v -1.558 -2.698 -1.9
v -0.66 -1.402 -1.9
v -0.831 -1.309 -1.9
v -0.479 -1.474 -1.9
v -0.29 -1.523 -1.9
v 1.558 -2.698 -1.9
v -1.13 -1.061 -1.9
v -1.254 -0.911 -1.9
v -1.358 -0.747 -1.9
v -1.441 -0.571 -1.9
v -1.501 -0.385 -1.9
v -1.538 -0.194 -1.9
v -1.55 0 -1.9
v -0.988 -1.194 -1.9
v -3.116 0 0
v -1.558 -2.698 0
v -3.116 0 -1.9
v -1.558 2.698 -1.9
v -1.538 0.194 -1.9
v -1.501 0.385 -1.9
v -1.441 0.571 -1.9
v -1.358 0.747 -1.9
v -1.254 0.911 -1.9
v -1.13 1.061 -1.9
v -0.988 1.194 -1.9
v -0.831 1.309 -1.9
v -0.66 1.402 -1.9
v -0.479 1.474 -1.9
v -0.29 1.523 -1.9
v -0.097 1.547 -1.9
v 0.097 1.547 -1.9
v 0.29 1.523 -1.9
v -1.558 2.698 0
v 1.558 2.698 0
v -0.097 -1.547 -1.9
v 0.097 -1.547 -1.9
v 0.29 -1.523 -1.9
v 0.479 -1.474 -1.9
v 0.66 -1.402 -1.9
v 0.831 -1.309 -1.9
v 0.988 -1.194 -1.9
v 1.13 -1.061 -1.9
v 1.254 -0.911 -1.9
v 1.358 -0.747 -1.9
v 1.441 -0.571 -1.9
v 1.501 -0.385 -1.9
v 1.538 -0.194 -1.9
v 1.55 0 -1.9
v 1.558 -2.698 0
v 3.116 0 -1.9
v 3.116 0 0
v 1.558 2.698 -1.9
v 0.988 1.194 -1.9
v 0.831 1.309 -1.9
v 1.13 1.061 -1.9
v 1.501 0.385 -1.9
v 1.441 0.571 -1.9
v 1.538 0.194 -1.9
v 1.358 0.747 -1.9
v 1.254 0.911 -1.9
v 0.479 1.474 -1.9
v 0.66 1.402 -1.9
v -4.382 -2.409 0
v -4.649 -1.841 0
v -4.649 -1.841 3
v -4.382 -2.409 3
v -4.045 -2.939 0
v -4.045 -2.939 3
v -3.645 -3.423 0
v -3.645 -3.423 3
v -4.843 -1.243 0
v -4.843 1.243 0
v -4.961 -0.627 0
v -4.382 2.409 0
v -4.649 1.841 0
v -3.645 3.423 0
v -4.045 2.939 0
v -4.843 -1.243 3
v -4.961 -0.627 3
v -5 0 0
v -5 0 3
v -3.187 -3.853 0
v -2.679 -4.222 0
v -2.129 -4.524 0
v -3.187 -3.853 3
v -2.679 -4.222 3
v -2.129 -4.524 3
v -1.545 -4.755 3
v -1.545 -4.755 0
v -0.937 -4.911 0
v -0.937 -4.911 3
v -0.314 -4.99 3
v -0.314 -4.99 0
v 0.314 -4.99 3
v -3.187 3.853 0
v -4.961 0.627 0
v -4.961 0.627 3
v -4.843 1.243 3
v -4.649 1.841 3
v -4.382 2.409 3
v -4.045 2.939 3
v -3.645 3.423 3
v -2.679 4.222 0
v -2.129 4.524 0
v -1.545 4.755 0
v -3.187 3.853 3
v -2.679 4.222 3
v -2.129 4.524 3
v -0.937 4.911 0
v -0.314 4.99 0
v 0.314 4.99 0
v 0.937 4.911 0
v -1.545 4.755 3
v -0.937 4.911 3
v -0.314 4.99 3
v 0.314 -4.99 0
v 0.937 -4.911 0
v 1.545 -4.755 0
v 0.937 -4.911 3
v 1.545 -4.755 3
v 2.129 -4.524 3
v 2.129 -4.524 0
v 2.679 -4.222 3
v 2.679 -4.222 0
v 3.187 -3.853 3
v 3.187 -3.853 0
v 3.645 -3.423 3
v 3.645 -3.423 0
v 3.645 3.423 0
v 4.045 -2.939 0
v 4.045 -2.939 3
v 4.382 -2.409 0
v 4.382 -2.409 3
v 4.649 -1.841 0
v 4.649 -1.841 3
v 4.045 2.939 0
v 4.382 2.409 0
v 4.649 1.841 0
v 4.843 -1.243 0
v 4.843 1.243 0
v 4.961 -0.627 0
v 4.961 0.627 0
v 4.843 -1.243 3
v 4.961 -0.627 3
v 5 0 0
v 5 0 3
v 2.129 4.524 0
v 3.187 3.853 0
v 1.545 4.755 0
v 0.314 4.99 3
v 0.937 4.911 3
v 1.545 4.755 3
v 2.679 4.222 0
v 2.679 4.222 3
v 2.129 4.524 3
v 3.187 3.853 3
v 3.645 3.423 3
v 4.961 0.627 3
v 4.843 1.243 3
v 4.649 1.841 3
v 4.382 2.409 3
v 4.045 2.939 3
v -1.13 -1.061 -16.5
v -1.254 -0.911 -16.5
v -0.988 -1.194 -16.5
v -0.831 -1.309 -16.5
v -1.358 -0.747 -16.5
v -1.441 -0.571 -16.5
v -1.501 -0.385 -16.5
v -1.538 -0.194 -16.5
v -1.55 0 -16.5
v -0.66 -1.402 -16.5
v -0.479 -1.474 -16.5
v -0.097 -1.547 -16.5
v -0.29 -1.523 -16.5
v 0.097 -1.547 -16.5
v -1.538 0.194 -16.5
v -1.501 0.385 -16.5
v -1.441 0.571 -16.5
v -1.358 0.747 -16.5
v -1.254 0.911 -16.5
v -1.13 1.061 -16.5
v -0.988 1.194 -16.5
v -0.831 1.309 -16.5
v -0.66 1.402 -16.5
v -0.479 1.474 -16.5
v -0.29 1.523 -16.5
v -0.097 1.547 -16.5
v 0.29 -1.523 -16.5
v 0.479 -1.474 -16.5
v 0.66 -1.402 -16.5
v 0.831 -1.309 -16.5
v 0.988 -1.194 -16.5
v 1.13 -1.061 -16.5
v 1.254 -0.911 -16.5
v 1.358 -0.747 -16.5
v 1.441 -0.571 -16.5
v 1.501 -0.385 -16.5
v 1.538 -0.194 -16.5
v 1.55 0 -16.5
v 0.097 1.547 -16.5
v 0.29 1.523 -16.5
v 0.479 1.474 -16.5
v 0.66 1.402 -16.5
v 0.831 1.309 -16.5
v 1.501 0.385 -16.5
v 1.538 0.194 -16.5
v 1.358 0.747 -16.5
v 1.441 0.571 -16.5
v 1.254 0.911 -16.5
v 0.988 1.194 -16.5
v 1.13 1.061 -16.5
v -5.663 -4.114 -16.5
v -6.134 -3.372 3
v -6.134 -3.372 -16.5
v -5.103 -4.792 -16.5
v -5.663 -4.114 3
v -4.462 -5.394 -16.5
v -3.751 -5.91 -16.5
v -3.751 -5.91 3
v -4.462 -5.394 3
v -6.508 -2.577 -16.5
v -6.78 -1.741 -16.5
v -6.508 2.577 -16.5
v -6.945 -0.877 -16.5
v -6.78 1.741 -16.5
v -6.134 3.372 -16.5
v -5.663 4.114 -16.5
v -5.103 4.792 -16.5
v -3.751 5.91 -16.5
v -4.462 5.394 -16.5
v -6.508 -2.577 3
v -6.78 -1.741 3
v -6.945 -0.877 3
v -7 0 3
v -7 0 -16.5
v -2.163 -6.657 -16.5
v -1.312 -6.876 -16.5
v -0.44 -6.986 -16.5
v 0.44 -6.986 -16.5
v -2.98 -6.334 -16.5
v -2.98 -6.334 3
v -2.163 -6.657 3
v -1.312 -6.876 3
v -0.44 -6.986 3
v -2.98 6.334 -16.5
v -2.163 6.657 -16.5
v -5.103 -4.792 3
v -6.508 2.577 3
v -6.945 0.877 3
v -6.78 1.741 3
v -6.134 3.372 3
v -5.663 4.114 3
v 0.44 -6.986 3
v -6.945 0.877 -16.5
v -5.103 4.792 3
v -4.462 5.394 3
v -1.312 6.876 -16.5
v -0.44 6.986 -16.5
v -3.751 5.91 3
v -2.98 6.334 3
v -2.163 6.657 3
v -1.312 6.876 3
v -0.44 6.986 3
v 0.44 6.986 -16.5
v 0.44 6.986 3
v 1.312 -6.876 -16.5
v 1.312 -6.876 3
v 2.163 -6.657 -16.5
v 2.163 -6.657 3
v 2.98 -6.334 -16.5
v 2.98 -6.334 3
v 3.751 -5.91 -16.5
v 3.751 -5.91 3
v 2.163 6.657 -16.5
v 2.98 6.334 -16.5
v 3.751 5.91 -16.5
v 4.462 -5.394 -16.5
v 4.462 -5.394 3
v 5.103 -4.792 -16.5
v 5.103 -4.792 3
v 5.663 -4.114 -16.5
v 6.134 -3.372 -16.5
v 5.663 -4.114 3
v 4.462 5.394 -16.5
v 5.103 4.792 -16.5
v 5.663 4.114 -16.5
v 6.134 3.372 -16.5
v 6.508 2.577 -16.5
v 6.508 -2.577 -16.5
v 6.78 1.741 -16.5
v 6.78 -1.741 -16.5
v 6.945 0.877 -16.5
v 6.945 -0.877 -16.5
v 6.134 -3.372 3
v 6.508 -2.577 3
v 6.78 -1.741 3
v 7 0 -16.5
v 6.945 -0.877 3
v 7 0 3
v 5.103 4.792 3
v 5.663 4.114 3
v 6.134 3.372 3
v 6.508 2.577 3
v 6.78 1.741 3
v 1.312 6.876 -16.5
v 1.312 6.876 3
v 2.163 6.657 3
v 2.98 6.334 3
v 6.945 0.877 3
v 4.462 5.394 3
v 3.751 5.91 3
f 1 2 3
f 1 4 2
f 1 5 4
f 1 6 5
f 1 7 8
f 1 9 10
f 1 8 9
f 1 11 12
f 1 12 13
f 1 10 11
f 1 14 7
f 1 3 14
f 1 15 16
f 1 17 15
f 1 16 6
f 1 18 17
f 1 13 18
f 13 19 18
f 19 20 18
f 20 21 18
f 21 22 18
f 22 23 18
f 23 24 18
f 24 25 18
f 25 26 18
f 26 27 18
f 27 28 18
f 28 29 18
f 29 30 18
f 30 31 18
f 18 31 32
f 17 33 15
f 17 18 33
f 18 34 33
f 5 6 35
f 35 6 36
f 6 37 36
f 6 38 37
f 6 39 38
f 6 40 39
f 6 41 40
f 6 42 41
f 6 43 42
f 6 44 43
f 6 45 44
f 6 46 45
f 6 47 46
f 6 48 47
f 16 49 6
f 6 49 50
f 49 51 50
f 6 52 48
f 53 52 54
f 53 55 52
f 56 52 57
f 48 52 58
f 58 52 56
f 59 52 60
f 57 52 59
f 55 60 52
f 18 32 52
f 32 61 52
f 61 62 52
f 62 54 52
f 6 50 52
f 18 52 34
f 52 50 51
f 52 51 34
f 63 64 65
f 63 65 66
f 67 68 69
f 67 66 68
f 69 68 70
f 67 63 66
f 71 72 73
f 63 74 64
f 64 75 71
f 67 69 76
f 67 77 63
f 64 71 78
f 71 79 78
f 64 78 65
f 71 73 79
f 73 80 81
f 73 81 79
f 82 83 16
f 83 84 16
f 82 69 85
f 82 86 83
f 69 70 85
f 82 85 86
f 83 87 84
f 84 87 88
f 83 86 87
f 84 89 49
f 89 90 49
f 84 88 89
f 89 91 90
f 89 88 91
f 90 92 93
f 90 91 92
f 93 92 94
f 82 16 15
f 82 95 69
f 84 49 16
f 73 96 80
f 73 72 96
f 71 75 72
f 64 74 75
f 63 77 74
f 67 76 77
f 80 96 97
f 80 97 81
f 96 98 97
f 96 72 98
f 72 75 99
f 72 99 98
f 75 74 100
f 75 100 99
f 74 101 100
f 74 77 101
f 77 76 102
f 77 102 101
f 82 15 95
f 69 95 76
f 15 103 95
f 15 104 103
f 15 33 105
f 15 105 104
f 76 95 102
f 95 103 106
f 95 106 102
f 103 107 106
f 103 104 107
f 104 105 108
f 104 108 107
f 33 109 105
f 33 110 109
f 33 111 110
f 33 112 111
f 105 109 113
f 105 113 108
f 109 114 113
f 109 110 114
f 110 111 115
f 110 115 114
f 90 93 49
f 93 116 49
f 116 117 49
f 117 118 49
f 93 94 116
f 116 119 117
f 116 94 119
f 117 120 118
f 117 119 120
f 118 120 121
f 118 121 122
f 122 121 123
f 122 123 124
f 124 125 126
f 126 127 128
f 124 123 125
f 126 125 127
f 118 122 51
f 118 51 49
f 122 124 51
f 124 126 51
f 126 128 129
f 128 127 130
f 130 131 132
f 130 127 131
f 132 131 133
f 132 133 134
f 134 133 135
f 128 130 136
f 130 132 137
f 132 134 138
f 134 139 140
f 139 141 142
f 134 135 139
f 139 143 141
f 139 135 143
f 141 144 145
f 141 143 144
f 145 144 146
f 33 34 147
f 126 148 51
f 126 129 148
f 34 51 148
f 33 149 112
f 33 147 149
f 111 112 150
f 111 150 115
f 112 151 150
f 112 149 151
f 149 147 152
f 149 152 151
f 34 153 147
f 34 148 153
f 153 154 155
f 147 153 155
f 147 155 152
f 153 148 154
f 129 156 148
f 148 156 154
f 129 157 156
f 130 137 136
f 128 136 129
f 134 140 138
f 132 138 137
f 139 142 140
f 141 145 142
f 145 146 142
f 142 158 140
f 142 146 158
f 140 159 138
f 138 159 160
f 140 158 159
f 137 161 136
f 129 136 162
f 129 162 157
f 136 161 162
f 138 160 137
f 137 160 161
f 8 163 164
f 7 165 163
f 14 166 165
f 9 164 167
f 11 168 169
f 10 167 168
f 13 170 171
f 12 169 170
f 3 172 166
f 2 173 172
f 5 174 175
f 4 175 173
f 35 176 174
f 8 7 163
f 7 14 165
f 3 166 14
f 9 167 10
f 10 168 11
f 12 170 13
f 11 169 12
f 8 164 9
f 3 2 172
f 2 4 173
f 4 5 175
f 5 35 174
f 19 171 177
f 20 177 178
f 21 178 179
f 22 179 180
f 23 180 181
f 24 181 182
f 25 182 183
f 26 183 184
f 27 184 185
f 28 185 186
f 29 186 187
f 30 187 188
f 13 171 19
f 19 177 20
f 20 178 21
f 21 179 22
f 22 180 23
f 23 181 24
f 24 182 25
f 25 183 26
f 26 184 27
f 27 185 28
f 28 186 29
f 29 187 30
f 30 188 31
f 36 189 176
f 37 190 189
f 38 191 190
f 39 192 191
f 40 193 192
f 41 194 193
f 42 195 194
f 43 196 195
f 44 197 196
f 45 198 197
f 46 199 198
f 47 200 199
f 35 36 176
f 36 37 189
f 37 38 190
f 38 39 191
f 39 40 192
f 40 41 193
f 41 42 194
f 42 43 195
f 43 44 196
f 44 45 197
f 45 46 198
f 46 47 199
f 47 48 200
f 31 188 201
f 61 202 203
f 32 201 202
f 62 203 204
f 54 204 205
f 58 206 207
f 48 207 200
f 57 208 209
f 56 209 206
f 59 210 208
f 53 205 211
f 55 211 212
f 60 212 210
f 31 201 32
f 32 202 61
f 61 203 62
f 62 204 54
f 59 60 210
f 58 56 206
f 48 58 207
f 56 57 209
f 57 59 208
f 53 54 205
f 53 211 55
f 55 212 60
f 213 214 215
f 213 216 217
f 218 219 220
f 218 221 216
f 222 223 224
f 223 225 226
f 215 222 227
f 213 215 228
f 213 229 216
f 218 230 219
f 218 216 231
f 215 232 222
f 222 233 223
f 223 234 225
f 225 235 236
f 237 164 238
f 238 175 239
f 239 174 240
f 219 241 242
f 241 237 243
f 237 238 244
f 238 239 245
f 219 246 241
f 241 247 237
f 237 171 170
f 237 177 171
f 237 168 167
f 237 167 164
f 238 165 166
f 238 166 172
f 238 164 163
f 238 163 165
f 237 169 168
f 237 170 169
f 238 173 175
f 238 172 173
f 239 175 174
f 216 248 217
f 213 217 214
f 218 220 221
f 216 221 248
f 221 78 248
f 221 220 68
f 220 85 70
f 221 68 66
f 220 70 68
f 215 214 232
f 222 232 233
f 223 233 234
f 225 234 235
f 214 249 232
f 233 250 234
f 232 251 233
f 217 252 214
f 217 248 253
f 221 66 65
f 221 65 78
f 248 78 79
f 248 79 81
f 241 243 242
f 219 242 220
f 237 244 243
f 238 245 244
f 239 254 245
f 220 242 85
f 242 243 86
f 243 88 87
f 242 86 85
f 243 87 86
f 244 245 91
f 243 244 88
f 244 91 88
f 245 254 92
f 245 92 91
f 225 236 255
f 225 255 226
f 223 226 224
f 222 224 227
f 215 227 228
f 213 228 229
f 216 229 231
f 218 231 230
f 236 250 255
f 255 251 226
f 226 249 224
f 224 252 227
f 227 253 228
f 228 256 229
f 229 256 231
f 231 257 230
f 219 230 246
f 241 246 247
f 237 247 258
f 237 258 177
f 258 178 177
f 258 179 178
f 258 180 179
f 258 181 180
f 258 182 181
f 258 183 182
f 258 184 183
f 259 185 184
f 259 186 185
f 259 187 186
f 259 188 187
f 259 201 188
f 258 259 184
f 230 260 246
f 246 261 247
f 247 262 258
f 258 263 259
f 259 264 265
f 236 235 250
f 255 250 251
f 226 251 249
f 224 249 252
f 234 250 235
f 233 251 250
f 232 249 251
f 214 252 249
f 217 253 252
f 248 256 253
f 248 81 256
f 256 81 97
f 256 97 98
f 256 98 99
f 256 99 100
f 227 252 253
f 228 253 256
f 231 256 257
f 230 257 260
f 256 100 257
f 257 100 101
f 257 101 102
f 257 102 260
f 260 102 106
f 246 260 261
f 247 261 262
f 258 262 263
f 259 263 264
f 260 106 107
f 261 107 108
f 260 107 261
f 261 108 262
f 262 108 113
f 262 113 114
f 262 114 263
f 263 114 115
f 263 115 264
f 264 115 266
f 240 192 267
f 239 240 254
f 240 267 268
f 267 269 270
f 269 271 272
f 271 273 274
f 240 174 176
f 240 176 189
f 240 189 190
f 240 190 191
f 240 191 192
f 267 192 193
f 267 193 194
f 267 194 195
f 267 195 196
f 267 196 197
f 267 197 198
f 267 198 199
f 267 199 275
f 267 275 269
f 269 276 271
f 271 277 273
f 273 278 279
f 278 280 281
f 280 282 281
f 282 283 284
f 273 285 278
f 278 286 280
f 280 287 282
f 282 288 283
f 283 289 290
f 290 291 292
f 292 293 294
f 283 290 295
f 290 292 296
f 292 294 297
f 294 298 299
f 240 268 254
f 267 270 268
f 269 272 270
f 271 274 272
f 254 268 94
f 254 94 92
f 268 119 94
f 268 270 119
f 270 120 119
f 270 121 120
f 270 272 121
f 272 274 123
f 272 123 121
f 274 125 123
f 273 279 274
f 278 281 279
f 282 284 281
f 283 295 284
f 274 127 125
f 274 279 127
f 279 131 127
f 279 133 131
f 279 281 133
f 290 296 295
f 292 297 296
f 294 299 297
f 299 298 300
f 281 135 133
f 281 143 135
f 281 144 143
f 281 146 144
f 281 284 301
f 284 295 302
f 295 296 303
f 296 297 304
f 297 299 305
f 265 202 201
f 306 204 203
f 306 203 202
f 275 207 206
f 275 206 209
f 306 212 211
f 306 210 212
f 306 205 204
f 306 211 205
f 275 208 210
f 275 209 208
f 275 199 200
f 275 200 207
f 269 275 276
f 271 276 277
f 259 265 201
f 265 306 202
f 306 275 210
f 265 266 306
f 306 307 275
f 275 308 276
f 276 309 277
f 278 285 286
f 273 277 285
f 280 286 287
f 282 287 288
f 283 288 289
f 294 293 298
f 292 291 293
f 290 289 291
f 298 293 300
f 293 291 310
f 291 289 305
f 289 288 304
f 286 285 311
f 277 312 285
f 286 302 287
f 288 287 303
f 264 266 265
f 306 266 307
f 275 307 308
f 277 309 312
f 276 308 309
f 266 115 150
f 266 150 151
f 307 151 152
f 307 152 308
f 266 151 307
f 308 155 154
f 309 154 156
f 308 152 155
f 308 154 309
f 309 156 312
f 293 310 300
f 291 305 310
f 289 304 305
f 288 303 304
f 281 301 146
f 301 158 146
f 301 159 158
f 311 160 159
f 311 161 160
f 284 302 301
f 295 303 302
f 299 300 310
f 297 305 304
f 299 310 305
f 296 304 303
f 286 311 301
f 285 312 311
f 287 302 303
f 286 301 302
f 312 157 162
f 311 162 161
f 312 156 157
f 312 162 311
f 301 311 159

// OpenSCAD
$fn = 50;


difference() {
	union() {
		translate(v = [0, 0, -16.5000000000]) {
			cylinder(h = 19.5000000000, r = 7.0000000000);
		}
	}
	union() {
		translate(v = [0, 0, 0]) {
			rotate(a = [0, 0, 0]) {
				difference() {
					union() {
						translate(v = [0, 0, -1.9000000000]) {
							linear_extrude(height = 1.9000000000) {
								polygon(points = [[3.1158000000, 0.0000000000], [1.5579000000, 2.6983619531], [-1.5579000000, 2.6983619531], [-3.1158000000, 0.0000000000], [-1.5579000000, -2.6983619531], [1.5579000000, -2.6983619531]]);
							}
						}
					}
					union();
				}
			}
		}
		#cylinder(h = 3, r = 5.0000000000);
		#translate(v = [0, 0, -100.0000000000]) {
			cylinder(h = 200, r = 1.5500000000);
		}
	}
}
